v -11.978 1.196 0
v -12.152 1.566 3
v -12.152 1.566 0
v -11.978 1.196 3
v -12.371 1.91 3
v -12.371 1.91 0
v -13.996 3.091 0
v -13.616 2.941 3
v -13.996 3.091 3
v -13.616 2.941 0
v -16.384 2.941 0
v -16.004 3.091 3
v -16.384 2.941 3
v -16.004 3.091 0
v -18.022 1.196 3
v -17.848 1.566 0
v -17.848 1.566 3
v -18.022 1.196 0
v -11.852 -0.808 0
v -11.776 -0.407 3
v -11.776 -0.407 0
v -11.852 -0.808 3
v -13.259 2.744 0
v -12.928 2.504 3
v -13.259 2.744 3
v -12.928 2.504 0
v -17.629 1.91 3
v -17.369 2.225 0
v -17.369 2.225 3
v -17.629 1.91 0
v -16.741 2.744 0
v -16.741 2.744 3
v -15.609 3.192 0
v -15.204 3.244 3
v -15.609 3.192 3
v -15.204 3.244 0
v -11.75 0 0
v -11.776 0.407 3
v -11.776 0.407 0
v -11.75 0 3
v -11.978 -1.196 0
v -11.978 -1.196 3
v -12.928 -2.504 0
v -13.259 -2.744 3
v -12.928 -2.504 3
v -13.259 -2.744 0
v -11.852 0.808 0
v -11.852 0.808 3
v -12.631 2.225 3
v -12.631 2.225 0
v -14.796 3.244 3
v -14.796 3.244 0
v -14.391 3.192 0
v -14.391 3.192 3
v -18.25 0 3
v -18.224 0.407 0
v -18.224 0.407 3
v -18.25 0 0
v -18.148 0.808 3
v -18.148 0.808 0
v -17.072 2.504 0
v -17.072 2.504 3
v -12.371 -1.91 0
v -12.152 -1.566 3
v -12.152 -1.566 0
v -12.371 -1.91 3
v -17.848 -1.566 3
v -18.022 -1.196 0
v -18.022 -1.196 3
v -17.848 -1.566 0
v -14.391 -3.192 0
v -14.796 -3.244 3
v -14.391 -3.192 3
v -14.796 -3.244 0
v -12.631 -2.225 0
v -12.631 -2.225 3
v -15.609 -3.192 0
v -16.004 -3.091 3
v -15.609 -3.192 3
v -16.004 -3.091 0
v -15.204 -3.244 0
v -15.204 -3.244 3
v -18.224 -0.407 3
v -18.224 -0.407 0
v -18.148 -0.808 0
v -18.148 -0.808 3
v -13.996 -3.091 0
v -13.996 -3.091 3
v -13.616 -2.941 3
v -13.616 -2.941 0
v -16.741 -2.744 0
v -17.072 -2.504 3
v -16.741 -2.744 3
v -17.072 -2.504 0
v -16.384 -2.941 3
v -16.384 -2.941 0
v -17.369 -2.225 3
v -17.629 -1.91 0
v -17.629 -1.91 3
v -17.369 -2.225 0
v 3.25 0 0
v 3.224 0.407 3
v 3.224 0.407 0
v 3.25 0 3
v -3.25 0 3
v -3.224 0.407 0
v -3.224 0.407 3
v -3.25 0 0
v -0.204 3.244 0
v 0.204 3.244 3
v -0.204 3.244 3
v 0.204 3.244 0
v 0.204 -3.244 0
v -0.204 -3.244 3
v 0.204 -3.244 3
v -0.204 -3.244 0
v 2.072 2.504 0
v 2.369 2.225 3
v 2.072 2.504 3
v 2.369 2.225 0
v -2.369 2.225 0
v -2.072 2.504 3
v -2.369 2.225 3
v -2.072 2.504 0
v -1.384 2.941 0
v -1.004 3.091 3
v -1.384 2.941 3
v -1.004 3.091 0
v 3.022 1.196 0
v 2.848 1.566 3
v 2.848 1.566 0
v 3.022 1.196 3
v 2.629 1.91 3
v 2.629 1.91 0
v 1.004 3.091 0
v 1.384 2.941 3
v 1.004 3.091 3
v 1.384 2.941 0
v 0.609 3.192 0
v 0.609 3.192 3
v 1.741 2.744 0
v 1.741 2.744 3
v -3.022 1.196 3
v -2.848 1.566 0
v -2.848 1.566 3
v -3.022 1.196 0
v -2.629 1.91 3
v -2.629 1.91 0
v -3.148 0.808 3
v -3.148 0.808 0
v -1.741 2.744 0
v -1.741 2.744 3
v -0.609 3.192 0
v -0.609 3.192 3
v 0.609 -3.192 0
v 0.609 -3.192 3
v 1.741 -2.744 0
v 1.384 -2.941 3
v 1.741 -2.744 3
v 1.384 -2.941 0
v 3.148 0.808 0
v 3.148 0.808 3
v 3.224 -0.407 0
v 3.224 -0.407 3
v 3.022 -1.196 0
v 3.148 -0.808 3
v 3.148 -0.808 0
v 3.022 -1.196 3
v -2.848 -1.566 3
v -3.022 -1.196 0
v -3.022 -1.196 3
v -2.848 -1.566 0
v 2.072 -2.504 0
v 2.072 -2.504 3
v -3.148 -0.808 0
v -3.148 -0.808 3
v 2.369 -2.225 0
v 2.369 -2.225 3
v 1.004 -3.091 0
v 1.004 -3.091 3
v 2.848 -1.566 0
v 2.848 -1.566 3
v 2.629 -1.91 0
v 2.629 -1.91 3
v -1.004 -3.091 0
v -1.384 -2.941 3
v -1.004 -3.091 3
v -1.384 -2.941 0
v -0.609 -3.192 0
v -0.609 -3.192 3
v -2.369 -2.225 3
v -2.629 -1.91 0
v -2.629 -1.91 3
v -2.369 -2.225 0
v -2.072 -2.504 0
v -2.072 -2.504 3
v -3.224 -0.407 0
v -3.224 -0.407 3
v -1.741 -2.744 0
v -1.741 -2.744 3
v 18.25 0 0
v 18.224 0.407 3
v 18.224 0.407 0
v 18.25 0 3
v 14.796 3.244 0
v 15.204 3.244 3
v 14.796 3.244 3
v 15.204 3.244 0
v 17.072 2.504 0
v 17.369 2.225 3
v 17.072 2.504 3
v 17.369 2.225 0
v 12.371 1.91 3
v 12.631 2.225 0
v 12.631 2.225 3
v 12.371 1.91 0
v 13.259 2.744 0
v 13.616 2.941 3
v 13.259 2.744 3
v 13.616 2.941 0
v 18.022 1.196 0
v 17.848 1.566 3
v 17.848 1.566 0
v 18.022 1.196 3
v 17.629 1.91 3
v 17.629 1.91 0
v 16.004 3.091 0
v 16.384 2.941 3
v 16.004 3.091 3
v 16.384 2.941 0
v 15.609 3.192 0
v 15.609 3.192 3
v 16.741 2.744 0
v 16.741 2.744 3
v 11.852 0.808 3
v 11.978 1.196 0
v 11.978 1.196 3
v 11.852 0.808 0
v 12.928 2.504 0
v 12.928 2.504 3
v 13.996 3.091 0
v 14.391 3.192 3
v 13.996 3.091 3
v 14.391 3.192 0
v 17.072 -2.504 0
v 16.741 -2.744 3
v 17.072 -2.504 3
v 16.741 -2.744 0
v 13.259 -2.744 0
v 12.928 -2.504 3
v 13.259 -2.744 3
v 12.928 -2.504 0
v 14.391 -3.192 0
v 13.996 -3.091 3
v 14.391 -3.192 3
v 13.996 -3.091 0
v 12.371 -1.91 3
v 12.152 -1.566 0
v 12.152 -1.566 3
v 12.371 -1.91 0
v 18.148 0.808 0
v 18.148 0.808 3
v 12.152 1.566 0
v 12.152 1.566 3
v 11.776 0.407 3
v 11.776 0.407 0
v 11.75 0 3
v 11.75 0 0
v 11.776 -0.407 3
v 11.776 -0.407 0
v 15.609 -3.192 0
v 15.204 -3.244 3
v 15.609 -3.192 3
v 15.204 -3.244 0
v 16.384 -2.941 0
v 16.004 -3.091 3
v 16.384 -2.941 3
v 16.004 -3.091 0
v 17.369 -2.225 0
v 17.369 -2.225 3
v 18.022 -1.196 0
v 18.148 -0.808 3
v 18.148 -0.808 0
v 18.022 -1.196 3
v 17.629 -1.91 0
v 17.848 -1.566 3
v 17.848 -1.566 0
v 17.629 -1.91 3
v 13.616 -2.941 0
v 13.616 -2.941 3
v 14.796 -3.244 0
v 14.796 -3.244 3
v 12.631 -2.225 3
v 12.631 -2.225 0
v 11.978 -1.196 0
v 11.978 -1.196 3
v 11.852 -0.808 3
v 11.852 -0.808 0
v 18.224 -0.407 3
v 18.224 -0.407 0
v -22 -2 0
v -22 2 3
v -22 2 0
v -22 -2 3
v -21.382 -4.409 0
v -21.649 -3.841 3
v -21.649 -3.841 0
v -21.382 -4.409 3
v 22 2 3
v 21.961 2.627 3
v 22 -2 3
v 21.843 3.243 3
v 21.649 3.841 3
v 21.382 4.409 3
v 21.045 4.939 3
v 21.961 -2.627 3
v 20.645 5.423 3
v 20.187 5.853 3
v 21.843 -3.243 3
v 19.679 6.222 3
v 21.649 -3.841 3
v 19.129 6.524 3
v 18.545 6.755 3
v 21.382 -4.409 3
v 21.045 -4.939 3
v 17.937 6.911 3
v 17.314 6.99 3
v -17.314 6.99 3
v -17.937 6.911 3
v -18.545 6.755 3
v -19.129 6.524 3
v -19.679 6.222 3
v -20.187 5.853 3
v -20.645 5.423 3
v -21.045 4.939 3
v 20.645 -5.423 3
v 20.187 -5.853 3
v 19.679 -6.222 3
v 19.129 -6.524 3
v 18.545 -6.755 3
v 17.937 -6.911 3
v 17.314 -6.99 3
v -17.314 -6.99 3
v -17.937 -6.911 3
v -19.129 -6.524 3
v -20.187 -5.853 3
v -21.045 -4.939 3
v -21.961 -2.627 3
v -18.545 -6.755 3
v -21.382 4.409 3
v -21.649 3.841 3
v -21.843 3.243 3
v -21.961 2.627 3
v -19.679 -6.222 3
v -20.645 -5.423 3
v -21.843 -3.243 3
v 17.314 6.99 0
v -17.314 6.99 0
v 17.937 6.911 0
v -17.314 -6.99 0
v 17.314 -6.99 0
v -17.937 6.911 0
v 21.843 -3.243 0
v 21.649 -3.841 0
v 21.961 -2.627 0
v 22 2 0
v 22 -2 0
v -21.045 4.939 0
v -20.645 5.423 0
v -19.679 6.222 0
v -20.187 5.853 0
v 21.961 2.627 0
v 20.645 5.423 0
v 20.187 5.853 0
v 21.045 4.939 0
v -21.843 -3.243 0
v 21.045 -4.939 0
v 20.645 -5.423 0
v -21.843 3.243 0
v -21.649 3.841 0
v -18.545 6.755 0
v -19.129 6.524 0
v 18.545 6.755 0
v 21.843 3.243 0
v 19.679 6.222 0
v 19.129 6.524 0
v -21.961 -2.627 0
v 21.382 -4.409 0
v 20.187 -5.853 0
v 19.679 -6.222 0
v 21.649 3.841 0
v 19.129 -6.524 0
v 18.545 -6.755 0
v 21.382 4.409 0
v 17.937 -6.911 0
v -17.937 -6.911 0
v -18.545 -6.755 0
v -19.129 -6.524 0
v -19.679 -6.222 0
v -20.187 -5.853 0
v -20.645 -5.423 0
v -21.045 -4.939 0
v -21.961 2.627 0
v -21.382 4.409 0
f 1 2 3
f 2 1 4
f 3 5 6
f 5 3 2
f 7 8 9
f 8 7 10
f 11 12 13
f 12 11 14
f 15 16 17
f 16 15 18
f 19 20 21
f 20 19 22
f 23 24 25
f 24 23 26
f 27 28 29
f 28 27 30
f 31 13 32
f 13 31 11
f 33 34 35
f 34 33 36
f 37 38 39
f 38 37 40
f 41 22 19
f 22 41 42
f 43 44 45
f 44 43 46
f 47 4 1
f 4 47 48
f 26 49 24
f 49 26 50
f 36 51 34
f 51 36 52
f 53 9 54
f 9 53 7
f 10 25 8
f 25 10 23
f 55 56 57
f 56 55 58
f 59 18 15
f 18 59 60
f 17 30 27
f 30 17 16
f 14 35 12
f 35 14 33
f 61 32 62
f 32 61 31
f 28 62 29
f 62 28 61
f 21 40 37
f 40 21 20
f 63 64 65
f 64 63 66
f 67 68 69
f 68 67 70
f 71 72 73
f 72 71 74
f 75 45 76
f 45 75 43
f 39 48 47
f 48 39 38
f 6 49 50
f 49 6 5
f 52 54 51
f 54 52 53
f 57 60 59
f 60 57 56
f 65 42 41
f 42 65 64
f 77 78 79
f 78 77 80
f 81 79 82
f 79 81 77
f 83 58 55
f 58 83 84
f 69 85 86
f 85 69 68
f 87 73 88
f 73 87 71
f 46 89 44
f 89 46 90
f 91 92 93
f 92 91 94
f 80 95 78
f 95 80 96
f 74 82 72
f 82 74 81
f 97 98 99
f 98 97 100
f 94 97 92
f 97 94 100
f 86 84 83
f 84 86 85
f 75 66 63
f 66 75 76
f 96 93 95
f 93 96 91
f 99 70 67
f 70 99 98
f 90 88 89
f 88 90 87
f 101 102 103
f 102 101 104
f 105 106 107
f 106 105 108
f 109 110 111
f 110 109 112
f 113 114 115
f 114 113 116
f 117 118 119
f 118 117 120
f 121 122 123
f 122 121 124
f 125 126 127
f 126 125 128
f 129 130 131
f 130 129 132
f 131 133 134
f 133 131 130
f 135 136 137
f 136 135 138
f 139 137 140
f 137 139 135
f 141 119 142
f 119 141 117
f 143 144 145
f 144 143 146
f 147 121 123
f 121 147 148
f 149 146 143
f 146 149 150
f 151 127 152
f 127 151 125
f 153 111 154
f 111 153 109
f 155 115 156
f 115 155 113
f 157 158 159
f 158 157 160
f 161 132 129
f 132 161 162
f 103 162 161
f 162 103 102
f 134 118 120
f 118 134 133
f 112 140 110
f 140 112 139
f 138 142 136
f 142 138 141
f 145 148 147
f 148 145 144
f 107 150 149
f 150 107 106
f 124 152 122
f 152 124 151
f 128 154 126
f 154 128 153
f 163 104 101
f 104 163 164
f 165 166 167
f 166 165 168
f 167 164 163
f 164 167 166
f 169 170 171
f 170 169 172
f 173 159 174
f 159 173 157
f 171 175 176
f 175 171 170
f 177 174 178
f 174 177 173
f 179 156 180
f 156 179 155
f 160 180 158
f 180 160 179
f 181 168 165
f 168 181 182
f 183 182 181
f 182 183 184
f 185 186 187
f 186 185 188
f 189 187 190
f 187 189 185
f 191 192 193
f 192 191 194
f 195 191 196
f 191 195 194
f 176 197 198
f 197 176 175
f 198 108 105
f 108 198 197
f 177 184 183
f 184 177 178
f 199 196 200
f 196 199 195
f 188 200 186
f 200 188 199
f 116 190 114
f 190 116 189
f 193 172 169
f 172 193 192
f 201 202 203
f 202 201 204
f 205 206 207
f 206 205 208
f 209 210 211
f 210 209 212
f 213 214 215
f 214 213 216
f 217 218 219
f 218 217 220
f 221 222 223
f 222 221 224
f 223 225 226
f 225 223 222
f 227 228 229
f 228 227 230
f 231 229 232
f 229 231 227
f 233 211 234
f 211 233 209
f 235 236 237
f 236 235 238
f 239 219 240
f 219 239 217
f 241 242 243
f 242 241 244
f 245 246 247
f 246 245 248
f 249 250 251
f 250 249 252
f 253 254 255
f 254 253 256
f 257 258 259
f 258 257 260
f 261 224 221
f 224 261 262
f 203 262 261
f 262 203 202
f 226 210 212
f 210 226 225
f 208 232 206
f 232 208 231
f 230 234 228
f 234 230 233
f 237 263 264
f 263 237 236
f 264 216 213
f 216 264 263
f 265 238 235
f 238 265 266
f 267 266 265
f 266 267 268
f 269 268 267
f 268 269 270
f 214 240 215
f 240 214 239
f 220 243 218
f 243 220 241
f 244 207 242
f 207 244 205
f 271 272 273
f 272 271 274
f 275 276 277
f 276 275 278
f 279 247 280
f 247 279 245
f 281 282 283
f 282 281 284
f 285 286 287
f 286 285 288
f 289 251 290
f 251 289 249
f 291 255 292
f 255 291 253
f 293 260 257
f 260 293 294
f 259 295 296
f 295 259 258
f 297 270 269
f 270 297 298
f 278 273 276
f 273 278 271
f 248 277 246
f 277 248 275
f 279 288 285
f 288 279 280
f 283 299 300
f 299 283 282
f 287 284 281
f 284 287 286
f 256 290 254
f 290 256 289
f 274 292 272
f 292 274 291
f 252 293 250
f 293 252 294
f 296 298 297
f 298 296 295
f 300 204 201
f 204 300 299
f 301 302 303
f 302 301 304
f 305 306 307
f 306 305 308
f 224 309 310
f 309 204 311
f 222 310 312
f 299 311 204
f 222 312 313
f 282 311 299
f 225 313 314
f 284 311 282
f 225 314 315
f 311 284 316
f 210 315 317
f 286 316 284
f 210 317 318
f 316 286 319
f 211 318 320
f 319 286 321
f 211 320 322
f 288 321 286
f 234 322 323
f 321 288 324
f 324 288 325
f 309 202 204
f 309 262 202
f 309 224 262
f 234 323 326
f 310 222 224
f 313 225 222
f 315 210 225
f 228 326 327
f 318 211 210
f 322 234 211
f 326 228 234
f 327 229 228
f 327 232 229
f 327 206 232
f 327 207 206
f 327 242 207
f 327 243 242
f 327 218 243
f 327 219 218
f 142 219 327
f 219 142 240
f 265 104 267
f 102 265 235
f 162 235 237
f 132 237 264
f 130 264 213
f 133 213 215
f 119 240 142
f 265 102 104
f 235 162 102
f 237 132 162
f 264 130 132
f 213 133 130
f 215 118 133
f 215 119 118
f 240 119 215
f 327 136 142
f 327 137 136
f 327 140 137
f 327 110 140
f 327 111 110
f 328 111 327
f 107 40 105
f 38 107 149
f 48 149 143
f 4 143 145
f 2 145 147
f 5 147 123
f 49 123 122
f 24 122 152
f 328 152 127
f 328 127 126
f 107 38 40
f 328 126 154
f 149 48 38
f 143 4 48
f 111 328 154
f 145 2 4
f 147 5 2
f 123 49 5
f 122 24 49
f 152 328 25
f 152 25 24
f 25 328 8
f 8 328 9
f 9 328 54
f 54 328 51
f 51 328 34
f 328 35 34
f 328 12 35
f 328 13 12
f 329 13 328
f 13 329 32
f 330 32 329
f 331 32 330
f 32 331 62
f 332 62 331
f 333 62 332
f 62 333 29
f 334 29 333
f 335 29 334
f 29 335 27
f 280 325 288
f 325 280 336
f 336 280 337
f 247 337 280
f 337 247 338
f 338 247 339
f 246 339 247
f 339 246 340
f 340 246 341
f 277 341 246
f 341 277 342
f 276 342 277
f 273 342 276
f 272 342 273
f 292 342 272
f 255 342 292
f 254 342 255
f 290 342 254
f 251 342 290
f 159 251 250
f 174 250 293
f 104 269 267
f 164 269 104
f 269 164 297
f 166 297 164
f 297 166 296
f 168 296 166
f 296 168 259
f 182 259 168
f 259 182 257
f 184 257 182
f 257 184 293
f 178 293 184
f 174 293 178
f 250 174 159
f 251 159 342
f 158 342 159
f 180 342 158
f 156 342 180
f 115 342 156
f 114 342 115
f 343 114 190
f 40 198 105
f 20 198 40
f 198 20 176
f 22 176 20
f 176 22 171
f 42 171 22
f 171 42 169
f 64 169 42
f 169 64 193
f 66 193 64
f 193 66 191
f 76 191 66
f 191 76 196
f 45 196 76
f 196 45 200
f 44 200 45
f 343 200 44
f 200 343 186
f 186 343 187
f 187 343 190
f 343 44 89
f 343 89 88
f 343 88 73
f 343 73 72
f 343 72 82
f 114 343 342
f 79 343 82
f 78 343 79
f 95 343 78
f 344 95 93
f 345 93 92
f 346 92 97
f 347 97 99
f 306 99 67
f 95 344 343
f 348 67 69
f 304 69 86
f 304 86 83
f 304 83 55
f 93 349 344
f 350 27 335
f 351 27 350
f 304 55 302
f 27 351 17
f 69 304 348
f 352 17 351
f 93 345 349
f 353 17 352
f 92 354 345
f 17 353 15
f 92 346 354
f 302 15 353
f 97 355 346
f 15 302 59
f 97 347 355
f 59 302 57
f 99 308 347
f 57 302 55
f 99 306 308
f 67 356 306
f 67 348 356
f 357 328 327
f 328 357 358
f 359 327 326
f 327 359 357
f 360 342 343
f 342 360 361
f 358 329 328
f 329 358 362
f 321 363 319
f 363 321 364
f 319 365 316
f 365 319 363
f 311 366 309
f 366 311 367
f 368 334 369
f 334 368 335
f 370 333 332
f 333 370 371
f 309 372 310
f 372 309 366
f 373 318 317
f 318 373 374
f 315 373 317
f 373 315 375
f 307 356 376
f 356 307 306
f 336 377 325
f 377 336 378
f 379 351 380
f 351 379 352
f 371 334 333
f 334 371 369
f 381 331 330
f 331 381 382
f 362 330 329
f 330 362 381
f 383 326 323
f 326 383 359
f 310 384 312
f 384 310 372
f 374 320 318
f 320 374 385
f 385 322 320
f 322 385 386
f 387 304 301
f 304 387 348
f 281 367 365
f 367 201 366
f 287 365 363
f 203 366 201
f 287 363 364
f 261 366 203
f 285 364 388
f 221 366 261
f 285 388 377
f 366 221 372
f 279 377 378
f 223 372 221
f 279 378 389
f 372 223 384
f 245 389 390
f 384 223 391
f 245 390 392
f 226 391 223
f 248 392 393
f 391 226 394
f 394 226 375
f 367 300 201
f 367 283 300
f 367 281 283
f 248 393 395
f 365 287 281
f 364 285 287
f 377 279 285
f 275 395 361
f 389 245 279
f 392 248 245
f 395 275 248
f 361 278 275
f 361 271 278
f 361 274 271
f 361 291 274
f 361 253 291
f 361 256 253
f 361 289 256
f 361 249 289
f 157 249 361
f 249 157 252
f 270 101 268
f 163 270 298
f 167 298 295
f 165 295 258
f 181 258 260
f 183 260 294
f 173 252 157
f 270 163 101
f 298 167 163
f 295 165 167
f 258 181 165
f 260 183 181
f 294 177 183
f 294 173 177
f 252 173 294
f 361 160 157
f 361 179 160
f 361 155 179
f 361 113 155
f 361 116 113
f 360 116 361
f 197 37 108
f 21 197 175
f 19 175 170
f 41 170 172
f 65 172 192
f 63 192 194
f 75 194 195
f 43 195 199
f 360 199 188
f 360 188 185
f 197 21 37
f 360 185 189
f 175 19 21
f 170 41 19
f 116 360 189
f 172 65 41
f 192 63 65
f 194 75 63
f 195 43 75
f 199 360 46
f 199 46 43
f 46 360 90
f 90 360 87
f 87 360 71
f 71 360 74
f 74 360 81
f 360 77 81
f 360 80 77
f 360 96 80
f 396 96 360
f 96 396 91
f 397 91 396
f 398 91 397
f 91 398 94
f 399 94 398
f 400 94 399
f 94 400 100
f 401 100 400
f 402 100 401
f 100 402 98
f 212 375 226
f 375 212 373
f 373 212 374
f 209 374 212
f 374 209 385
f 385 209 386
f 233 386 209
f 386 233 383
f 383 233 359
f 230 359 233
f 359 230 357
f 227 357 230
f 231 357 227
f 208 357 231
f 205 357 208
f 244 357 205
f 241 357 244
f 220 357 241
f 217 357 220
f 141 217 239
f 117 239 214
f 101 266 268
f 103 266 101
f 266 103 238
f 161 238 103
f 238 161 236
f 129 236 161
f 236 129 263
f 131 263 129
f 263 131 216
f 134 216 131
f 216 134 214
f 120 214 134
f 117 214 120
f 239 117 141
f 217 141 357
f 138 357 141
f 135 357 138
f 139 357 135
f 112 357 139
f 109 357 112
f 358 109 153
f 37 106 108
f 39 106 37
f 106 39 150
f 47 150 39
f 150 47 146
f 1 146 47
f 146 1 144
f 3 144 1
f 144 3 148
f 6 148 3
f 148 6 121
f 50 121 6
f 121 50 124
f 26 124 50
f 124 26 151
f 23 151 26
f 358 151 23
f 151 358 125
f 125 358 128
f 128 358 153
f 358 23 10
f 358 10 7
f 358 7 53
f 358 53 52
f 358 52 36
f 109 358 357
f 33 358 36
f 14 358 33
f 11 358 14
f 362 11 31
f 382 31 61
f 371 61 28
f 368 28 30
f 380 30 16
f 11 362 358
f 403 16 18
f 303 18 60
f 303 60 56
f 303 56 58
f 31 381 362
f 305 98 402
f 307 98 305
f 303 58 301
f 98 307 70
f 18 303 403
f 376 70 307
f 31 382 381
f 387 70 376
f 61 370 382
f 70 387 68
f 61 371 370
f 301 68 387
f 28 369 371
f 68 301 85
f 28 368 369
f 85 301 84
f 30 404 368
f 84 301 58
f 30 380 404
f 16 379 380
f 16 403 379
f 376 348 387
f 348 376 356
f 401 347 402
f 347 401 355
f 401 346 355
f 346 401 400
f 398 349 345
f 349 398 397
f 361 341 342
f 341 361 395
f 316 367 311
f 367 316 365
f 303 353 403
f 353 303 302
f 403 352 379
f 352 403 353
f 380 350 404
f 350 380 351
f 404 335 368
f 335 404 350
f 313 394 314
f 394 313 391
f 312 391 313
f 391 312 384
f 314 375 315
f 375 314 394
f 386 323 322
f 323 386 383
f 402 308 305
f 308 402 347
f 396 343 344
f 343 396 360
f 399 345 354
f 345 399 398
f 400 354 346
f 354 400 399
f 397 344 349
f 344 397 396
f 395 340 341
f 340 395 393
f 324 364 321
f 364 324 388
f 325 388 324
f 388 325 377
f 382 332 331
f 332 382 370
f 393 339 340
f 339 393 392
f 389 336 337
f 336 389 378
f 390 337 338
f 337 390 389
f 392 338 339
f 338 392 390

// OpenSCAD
$fn = 50;


difference() {
	union() {
		translate(v = [0, 0, 0]) {
			rotate(a = [0, 0, 0]) {
				hull() {
					translate(v = [-17.0000000000, 2.0000000000, 0]) {
						rotate(a = [0, 0, 0]) {
							translate(v = [0, 0, 0]) {
								rotate(a = [0, 0, 0]) {
									cylinder(h = 3, r = 5);
								}
							}
						}
					}
					translate(v = [17.0000000000, 2.0000000000, 0]) {
						rotate(a = [0, 0, 0]) {
							translate(v = [0, 0, 0]) {
								rotate(a = [0, 0, 0]) {
									cylinder(h = 3, r = 5);
								}
							}
						}
					}
					translate(v = [-17.0000000000, -2.0000000000, 0]) {
						rotate(a = [0, 0, 0]) {
							translate(v = [0, 0, 0]) {
								rotate(a = [0, 0, 0]) {
									cylinder(h = 3, r = 5);
								}
							}
						}
					}
					translate(v = [17.0000000000, -2.0000000000, 0]) {
						rotate(a = [0, 0, 0]) {
							translate(v = [0, 0, 0]) {
								rotate(a = [0, 0, 0]) {
									cylinder(h = 3, r = 5);
								}
							}
						}
					}
				}
			}
		}
	}
	union() {
		translate(v = [-15.0000000000, 0.0000000000, 0]) {
			rotate(a = [0, 0, 0]) {
				translate(v = [0, 0, -50]) {
					rotate(a = [0, 0, 0]) {
						cylinder(h = 100, r = 3.2500000000);
					}
				}
			}
		}
		translate(v = [0.0000000000, 0.0000000000, 0]) {
			rotate(a = [0, 0, 0]) {
				translate(v = [0, 0, -50]) {
					rotate(a = [0, 0, 0]) {
						cylinder(h = 100, r = 3.2500000000);
					}
				}
			}
		}
		translate(v = [15.0000000000, 0.0000000000, 0]) {
			rotate(a = [0, 0, 0]) {
				translate(v = [0, 0, -50]) {
					rotate(a = [0, 0, 0]) {
						cylinder(h = 100, r = 3.2500000000);
					}
				}
			}
		}
	}
}
